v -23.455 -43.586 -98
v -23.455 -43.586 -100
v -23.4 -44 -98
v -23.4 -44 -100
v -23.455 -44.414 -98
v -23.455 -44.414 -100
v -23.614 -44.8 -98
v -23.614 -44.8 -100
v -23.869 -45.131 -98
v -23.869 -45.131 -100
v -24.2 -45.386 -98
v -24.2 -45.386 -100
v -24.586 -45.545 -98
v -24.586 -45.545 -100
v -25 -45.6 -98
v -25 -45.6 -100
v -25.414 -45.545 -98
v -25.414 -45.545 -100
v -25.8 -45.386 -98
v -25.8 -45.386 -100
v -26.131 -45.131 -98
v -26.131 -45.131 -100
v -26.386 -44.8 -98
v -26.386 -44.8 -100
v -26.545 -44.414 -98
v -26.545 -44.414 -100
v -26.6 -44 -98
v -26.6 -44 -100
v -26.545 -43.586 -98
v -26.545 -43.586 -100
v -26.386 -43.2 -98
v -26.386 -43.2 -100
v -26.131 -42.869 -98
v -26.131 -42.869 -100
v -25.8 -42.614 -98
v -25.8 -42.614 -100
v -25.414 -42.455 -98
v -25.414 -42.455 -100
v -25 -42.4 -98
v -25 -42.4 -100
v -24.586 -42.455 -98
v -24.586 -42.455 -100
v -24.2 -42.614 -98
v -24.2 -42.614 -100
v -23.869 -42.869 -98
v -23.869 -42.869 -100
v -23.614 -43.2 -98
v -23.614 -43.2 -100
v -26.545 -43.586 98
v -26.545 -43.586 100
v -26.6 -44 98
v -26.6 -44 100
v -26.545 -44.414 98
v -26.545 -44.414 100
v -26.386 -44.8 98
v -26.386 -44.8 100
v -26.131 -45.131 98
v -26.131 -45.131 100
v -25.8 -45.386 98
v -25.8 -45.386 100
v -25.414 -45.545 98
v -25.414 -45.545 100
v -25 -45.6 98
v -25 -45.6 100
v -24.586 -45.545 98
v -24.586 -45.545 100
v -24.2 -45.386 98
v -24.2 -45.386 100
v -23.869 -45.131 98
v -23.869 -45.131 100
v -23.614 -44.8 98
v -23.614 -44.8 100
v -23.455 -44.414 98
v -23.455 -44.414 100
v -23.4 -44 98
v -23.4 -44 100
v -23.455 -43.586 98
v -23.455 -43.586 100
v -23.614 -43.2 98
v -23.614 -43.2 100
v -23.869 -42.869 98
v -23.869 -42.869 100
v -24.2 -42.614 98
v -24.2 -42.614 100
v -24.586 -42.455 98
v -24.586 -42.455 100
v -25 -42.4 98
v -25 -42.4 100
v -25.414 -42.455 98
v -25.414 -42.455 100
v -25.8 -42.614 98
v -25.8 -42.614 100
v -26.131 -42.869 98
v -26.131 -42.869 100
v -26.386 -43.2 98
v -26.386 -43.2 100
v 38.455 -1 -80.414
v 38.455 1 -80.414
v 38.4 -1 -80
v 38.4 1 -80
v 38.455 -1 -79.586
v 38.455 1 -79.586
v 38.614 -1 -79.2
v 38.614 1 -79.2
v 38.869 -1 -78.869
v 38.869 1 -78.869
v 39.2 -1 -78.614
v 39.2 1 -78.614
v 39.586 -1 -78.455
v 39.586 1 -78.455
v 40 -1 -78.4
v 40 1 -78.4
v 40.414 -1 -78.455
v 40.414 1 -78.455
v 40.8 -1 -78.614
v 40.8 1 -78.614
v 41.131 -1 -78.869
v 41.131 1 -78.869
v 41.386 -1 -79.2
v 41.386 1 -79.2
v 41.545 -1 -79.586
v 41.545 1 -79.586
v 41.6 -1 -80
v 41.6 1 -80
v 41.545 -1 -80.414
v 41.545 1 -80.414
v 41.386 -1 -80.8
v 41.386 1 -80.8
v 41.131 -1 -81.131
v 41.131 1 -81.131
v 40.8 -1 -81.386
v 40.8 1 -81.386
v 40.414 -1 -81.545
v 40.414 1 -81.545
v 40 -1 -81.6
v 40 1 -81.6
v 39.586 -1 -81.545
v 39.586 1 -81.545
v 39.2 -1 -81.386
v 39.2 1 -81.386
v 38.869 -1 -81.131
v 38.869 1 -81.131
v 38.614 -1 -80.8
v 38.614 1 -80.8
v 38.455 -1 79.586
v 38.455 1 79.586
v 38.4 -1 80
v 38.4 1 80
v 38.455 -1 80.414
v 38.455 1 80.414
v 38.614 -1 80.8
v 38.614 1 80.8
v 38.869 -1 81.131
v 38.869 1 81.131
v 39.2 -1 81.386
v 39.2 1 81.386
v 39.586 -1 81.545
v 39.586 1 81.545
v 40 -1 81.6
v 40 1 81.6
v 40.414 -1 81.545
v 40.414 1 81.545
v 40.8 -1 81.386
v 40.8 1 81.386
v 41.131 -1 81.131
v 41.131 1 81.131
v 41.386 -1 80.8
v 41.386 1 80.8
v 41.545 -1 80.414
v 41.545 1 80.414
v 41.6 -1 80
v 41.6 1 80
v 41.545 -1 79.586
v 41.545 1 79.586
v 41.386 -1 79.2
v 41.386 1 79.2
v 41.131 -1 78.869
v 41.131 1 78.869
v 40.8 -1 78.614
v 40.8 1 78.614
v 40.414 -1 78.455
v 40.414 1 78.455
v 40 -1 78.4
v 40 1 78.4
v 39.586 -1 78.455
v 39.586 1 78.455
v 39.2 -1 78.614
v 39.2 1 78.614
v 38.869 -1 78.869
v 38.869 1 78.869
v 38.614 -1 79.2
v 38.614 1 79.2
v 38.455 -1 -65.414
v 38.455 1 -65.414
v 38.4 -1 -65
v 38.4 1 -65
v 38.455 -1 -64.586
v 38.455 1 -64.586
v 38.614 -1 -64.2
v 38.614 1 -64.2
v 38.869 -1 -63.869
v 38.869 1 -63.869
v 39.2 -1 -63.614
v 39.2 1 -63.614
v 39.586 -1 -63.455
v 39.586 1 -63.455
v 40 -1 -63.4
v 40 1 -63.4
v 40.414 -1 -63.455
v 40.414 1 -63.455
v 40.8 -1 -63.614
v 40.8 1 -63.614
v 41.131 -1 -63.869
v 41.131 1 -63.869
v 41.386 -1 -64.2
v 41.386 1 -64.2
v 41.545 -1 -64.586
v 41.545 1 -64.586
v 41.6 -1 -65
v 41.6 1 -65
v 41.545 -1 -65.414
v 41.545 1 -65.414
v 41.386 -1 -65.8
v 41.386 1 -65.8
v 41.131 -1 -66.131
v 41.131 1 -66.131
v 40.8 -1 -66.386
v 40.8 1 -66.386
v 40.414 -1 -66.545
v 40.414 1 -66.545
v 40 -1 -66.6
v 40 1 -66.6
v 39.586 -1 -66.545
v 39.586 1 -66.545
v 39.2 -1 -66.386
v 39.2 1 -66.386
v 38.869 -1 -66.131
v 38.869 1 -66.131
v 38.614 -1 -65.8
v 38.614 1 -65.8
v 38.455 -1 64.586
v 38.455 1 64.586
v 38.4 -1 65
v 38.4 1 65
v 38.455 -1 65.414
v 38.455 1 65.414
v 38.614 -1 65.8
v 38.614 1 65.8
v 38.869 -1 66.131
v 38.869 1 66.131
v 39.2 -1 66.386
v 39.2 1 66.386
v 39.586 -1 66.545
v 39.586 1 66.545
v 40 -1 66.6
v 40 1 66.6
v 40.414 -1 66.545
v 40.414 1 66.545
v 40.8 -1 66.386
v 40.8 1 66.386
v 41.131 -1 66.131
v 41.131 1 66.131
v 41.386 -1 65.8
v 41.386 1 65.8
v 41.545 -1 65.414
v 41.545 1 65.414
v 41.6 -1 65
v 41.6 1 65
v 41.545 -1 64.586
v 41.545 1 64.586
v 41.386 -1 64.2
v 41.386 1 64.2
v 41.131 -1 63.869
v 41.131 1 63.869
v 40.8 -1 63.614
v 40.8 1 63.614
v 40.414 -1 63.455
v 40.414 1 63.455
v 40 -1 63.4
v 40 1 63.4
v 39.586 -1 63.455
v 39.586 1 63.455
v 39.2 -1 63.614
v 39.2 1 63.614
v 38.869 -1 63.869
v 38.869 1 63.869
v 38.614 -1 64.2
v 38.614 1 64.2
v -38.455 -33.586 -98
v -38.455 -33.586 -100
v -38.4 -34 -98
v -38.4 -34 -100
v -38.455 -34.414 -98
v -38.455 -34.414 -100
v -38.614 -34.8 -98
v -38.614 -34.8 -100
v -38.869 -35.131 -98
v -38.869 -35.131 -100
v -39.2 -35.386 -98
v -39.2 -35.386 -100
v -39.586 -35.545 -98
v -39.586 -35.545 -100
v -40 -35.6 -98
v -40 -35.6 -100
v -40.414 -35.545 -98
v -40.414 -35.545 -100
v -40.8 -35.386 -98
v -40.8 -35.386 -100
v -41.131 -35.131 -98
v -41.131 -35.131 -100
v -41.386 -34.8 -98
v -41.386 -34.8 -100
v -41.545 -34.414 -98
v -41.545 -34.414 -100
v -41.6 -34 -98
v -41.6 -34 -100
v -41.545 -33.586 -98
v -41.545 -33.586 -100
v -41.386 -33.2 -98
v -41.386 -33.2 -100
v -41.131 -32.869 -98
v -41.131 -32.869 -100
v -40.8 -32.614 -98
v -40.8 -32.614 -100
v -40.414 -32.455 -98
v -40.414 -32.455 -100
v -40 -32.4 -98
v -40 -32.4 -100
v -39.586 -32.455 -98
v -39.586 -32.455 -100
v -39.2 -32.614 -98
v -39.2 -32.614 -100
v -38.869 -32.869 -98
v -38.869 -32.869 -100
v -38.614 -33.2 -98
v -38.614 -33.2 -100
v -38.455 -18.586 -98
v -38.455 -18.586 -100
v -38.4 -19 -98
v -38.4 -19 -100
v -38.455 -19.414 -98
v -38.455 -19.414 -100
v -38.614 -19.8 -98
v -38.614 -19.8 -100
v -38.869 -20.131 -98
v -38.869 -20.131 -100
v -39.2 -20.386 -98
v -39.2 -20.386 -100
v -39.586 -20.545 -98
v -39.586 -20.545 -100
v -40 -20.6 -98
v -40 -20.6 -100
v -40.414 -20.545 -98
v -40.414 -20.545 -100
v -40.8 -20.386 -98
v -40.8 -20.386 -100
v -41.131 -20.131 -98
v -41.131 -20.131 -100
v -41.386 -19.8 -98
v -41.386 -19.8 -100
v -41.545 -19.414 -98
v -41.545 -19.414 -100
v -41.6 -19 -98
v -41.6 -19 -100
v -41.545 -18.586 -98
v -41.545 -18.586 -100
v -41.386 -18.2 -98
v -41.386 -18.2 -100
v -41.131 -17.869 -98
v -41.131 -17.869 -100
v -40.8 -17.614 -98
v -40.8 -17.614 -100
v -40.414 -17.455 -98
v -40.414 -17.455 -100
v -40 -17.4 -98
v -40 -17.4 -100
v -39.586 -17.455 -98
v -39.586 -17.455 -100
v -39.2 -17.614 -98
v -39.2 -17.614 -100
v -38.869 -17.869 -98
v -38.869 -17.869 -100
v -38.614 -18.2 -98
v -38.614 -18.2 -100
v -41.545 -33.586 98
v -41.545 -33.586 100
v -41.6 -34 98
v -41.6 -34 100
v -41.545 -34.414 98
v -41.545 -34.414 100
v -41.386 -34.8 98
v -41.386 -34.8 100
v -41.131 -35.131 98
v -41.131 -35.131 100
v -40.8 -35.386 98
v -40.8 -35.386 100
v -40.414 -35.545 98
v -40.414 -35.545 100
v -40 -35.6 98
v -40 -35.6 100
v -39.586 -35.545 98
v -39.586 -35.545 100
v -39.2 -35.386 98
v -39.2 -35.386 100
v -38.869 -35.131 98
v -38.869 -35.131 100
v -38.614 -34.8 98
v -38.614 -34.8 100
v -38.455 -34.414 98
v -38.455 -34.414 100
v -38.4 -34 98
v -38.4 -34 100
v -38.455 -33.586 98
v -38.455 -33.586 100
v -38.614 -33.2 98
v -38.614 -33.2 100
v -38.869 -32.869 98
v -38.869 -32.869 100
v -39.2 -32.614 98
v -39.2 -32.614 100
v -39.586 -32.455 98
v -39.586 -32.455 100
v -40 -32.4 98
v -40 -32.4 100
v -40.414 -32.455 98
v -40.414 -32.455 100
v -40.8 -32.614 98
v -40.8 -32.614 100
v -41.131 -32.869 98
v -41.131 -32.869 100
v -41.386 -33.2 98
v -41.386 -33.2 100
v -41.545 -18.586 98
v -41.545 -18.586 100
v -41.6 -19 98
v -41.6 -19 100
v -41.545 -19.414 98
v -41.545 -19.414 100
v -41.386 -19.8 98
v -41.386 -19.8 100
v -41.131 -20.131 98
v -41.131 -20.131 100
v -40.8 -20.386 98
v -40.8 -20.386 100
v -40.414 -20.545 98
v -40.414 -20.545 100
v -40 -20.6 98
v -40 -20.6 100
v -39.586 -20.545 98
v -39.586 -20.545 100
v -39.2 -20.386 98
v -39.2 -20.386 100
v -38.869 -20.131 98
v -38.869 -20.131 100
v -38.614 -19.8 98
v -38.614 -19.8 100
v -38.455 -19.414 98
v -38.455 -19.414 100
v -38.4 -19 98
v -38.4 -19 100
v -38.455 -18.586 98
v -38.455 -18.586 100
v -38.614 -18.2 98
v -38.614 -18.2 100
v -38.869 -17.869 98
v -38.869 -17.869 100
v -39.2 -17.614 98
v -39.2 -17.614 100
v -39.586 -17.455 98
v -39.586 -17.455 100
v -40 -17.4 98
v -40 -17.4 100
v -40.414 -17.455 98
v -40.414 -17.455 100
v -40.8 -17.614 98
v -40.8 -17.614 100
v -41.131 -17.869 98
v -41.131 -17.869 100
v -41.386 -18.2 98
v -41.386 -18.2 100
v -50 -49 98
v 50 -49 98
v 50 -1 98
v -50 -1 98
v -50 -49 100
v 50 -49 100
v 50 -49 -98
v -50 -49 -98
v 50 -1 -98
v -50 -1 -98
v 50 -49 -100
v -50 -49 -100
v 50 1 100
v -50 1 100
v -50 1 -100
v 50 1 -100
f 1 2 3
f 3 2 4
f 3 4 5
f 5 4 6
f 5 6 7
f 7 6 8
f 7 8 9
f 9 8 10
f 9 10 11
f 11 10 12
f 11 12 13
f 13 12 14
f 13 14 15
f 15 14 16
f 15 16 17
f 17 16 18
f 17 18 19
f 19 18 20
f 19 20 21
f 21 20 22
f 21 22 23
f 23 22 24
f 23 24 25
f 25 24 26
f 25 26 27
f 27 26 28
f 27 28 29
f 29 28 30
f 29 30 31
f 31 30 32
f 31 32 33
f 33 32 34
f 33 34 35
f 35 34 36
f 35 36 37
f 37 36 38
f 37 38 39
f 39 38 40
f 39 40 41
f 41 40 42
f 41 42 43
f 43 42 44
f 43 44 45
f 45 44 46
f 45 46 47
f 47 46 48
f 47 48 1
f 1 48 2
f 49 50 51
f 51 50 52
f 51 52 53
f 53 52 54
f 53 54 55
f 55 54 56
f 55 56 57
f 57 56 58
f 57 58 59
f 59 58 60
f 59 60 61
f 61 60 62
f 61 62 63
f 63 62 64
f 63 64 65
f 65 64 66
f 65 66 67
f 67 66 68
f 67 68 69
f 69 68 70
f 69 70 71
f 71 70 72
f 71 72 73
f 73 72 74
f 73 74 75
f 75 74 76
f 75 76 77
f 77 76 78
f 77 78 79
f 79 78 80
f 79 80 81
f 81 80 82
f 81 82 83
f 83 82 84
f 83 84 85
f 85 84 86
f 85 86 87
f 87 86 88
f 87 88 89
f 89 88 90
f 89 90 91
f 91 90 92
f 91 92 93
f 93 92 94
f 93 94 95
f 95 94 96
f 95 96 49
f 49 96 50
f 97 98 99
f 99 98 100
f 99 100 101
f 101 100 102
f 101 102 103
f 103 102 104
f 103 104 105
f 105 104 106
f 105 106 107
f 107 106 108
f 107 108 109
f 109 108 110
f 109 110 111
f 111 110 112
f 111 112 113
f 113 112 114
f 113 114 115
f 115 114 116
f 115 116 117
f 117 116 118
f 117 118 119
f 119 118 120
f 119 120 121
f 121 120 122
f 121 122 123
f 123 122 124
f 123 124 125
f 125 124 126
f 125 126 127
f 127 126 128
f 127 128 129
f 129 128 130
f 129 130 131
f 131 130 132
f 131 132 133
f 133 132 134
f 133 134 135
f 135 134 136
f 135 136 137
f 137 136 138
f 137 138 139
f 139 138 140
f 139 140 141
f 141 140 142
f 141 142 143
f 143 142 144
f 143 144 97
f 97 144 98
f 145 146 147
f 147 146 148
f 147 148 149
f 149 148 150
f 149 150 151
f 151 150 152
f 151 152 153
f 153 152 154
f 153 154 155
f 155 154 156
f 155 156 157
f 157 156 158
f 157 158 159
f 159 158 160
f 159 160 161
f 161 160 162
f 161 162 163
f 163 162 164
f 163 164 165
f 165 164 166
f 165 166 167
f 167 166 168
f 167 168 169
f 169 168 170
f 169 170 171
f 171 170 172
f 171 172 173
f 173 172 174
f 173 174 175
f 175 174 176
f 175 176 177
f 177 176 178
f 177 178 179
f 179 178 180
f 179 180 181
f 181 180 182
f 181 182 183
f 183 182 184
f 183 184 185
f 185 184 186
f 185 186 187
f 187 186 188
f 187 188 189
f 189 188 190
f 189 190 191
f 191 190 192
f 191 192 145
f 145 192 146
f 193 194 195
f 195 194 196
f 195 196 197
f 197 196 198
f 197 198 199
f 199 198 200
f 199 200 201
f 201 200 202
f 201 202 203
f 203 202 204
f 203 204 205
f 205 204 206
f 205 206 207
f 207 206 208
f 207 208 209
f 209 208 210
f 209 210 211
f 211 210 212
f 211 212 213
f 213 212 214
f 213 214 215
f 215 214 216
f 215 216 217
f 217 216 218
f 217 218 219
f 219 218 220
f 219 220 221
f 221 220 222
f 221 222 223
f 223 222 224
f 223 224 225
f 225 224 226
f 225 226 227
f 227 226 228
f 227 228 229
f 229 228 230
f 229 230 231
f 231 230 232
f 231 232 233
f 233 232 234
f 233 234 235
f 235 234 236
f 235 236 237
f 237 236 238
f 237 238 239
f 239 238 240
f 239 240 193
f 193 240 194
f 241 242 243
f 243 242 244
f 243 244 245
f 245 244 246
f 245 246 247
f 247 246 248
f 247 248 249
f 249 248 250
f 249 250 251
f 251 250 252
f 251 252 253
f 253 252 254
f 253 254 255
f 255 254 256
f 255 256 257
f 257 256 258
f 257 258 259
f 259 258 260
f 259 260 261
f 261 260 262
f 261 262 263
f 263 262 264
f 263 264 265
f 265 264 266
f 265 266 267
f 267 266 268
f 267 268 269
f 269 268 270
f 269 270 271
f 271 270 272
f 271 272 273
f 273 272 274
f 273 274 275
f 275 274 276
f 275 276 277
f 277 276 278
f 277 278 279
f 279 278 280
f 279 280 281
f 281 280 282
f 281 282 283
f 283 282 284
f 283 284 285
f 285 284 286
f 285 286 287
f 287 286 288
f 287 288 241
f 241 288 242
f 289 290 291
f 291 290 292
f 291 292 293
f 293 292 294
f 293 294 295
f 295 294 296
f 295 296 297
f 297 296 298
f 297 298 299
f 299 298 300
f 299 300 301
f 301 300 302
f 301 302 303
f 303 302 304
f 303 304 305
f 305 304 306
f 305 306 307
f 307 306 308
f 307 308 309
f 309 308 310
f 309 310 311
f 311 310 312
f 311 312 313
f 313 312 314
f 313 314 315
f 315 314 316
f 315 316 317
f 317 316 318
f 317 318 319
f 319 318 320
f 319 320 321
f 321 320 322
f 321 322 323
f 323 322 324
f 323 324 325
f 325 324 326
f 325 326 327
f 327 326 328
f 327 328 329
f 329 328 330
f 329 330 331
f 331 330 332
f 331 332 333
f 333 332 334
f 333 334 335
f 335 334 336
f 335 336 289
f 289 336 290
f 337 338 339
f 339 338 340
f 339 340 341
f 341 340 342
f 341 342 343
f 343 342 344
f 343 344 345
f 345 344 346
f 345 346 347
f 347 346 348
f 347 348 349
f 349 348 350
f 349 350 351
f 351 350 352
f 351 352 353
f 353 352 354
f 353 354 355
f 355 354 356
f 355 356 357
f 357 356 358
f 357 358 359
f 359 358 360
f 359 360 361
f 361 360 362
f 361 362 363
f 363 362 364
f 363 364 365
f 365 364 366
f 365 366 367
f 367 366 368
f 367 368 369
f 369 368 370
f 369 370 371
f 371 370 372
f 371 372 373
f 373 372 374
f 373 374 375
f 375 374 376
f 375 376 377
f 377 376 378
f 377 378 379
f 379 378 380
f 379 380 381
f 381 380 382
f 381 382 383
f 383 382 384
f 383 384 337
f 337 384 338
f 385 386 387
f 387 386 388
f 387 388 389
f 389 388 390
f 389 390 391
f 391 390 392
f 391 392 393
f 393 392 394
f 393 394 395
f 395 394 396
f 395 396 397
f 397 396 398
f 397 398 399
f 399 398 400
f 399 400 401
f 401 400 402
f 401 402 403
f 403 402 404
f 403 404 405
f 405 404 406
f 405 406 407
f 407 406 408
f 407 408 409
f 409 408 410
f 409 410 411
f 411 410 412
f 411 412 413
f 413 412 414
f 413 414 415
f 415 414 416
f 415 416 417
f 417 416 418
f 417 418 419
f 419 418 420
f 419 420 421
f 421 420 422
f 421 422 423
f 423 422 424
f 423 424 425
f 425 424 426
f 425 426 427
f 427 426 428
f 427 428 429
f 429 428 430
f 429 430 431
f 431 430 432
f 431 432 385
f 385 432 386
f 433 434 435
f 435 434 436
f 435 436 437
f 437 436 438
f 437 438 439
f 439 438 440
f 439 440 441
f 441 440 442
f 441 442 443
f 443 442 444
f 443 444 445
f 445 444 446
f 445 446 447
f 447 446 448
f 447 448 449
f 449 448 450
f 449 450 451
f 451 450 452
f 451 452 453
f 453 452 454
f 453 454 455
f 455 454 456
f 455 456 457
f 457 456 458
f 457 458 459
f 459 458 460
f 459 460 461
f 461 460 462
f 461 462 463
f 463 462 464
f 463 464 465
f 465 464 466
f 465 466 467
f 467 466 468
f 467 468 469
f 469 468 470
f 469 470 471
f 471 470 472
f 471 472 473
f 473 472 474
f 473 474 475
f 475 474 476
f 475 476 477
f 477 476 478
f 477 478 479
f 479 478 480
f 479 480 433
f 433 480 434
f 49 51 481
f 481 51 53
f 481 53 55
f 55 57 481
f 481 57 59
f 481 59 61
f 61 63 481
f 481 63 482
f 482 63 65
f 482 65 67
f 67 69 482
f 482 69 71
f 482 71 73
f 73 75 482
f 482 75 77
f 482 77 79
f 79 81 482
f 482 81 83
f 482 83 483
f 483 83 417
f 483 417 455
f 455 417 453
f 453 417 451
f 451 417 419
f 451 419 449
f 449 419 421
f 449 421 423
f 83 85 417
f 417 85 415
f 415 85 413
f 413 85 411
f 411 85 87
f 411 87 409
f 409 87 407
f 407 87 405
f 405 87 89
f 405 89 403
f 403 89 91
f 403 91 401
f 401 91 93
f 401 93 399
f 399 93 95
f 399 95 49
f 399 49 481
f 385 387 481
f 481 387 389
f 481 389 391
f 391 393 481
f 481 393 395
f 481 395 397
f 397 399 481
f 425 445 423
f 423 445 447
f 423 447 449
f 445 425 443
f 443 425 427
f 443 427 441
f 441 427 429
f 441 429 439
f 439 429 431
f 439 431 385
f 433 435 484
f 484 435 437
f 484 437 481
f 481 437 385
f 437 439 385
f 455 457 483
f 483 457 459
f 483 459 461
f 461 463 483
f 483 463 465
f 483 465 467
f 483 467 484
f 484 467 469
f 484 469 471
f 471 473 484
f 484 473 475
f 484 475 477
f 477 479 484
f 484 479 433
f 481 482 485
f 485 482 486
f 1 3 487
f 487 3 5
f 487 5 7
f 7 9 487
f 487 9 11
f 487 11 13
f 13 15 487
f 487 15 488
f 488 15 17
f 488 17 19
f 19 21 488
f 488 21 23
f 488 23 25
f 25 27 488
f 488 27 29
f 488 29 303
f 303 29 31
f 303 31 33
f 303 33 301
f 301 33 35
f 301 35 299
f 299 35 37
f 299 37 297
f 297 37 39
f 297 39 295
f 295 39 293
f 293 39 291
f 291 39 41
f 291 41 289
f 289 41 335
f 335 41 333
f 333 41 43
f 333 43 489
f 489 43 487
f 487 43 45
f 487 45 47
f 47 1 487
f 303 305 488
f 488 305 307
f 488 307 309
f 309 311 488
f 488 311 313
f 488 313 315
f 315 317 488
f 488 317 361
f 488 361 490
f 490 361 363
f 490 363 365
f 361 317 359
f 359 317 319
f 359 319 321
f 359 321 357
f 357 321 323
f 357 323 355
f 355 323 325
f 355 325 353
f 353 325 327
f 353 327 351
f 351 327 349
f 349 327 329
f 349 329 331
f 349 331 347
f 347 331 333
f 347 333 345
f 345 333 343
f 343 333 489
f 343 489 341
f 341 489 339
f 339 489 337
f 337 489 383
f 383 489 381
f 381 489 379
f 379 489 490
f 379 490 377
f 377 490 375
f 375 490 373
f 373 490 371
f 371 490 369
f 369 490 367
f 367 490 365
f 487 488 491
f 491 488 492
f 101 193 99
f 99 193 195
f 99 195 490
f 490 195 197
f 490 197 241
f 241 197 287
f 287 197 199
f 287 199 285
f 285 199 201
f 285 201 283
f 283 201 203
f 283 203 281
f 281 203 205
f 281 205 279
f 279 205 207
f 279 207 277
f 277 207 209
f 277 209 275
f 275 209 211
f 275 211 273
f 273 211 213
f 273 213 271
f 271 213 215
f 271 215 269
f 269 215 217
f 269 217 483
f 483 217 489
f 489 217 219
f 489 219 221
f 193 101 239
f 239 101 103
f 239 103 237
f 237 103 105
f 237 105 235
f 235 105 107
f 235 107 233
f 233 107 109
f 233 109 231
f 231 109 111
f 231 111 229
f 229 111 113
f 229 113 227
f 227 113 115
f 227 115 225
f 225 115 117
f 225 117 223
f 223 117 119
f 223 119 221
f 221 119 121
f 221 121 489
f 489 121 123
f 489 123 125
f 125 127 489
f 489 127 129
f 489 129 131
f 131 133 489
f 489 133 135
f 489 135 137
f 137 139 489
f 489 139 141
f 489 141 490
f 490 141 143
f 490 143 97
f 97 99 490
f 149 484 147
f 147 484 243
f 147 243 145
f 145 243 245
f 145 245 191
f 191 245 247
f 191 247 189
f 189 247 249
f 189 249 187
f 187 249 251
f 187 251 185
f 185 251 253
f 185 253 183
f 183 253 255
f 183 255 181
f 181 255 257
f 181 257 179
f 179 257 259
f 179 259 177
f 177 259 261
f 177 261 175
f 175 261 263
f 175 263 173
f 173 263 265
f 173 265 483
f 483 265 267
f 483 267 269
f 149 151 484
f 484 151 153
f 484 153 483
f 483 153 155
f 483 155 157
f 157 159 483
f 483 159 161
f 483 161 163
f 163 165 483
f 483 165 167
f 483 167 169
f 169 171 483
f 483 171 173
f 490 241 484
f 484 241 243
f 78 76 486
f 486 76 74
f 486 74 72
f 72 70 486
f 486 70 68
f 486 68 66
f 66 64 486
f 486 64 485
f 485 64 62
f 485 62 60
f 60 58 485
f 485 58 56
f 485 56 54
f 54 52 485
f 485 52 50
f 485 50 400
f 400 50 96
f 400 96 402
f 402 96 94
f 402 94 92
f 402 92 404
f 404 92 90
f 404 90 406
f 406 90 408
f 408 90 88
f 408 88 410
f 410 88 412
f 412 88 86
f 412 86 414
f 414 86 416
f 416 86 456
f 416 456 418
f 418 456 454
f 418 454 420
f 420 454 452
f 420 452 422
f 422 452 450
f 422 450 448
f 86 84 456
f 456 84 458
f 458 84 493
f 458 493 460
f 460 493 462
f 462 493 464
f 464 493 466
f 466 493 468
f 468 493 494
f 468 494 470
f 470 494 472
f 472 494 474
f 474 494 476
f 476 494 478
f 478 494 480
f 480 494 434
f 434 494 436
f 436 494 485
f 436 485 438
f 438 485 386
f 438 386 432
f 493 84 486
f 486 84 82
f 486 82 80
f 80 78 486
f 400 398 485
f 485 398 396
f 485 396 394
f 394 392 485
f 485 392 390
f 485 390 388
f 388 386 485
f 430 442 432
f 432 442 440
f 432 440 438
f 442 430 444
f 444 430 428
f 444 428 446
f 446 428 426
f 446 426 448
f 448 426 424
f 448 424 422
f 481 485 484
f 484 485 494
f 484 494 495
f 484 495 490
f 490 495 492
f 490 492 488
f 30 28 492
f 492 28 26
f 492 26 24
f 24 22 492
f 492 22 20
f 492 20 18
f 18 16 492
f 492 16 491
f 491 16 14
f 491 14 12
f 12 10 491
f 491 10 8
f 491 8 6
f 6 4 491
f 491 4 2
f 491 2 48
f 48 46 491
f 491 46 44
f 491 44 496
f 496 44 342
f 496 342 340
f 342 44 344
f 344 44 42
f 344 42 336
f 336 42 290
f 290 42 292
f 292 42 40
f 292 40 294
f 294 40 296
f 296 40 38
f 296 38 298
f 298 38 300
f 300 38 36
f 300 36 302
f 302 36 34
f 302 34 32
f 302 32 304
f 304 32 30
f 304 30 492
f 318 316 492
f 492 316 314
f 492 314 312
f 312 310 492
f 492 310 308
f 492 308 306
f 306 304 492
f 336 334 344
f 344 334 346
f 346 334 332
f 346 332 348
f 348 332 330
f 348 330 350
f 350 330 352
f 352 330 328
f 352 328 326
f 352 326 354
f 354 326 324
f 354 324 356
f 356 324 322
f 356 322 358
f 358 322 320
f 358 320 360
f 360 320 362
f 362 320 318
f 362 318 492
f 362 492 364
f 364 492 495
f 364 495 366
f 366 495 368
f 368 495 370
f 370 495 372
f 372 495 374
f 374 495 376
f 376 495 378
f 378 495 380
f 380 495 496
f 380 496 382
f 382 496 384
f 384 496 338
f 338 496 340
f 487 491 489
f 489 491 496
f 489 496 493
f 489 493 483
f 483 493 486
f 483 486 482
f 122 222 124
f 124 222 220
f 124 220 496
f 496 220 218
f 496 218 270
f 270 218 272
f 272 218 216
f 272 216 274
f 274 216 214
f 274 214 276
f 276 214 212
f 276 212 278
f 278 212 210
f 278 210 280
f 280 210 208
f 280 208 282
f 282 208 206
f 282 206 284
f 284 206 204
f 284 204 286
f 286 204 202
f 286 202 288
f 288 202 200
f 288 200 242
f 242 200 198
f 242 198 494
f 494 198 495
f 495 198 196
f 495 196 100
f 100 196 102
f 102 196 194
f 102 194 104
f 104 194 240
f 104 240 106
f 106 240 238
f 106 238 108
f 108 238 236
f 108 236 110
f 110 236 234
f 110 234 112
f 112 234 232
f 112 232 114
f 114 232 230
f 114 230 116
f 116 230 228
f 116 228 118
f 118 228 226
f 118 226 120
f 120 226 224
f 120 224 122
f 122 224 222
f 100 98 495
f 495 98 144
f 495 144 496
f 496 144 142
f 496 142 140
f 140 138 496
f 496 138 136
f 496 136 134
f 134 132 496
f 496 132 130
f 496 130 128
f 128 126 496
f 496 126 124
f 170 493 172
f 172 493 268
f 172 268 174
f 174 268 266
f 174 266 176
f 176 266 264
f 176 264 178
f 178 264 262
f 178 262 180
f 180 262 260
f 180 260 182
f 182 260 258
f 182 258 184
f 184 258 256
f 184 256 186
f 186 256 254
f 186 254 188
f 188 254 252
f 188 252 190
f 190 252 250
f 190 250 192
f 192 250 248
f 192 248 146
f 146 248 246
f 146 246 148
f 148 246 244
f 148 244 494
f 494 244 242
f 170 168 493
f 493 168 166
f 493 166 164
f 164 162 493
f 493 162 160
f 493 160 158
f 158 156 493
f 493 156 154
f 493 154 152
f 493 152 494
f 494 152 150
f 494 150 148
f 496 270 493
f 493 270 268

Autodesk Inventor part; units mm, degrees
ref_plane "YZ Plane" through (0, 0, 0) normal (1, 0, 0) x (0, 1, 0)
ref_plane "XZ Plane" through (0, 0, 0) normal (0, 1, 0) x (-1, 0, 0)
ref_plane "XY Plane" through (0, 0, 0) normal (0, 0, 1) x (1, 0, 0)
sketch "Skizze1" plane through (0, 0, 0) normal (0, 1, 0) x (-1, 0, 0)
  line L0 (50, -100) -> (-50, -100)
  line L1 (-50, -100) -> (-50, 100)
  line L2 (-50, 100) -> (50, 100)
  line L3 (50, 100) -> (50, -100)
  line L4 (0, -140) -> (0, 140) projected
  line L5 (70, 0) -> (-70, 0) projected
  point P0 (0, 0)
  dimension "d0" = 100
  dimension "d1" = 200
extrude "Extrusion1" add sketch "Skizze1" along normal mid plane 2
sketch "Skizze3" plane through (0, -1, 0) normal (0, -1, 0) x (1, 0, 0)
  line L0 (50, -100) -> (-50, -100) projected
  line L1 (-50, -100) -> (-50, 100) projected
  line L2 (50, -100) -> (-50, -100)
  line L3 (-50, -100) -> (-50, -98)
  line L4 (-50, -98) -> (50, -98)
  line L5 (50, -98) -> (50, -100)
  line L6 (50, 100) -> (50, -100) projected
  line L7 (50, 100) -> (-50, 100)
  line L8 (-50, 100) -> (-50, 98)
  line L9 (-50, 98) -> (50, 98)
  line L10 (50, 98) -> (50, 100)
  point P0 (0, 0)
  dimension "d8" = 2
  dimension "d9" = 2
extrude "Extrusion3" add sketch "Skizze3" along normal blind 48 contours L0 L1 L4 L5 | L9 L1 L7 L6
sketch "Skizze4" plane through (-50, 1, 100) normal (0, 0, 1) x (1, 0, 0)
  circle A0 centre (10, -20) radius 1.6
  circle A1 centre (10, -35) radius 1.6
  line L0 (100, -50) -> (0, -50) projected
  line L1 (0, -50) -> (0, 0) projected
  point P0 (50, -1)
  dimension "d12" = 3.2
  dimension "d13" = 3.2
  dimension "d14" = 15
  dimension "d15" = 15
  dimension "d16" = 10
  dimension "d17" = 10
extrude "Extrusion4" cut sketch "Skizze4" against normal up to surface (2 mm away)
sketch "Skizze5" plane through (50, 1, -100) normal (0, 0, -1) x (-1, 0, 0)
  circle A0 centre (90, -20) radius 1.6
  circle A1 centre (90, -35) radius 1.6
  line L0 (100, -50) -> (100, 0) projected
  line L1 (100, -50) -> (0, -50) projected
  point P0 (50, -1)
  dimension "d20" = 3.2
  dimension "d21" = 3.2
  dimension "d22" = 10
  dimension "d23" = 10
  dimension "d24" = 15
  dimension "d25" = 15
extrude "Extrusion5" cut sketch "Skizze5" against normal up to surface (2 mm away)
sketch "Skizze6" plane through (0, 1, 0) normal (0, 1, 0) x (1, 0, 0)
  line L0 (50, -100) -> (50, 100) projected
  circle A0 centre (40, -65) radius 1.6
  circle A1 centre (40, -80) radius 1.6
  circle A2 centre (40, 80) radius 1.6
  circle A3 centre (40, 65) radius 1.6
  line L1 (-50, -100) -> (50, -100) projected
  line L2 (50, 100) -> (-50, 100) projected
  point P0 (0, 0)
  dimension "d31" = 3.2
  dimension "d32" = 3.2
  dimension "d33" = 3.2
  dimension "d34" = 3.2
  dimension "d35" = 10
  dimension "d36" = 10
  dimension "d37" = 15
  dimension "d38" = 10
  dimension "d39" = 10
  dimension "d40" = 15
  dimension "d41" = 20
  dimension "d42" = 20
extrude "Extrusion6" cut sketch "Skizze6" against normal up to surface (2 mm away)
sketch "Skizze7" plane through (-50, 1, 100) normal (0, 0, 1) x (1, 0, 0)
  circle A0 centre (25, -45) radius 1.6
  line L0 (0, -50) -> (0, 0) projected
  line L1 (100, -50) -> (0, -50) projected
  point P0 (50, -1)
  dimension "d45" = 3.2
  dimension "d46" = 25
  dimension "d47" = 5
extrude "Extrusion7" cut sketch "Skizze7" against normal up to surface (2 mm away)
sketch "Skizze8" plane through (50, 1, -100) normal (0, 0, -1) x (-1, 0, 0)
  circle A0 centre (75, -45) radius 1.6
  line L0 (100, -50) -> (100, 0) projected
  line L1 (100, -50) -> (0, -50) projected
  point P0 (50, -1)
  dimension "d50" = 3.2
  dimension "d51" = 25
  dimension "d52" = 5
extrude "Extrusion8" cut sketch "Skizze8" against normal up to surface (2 mm away)
properties part number "_3D-Druck"
